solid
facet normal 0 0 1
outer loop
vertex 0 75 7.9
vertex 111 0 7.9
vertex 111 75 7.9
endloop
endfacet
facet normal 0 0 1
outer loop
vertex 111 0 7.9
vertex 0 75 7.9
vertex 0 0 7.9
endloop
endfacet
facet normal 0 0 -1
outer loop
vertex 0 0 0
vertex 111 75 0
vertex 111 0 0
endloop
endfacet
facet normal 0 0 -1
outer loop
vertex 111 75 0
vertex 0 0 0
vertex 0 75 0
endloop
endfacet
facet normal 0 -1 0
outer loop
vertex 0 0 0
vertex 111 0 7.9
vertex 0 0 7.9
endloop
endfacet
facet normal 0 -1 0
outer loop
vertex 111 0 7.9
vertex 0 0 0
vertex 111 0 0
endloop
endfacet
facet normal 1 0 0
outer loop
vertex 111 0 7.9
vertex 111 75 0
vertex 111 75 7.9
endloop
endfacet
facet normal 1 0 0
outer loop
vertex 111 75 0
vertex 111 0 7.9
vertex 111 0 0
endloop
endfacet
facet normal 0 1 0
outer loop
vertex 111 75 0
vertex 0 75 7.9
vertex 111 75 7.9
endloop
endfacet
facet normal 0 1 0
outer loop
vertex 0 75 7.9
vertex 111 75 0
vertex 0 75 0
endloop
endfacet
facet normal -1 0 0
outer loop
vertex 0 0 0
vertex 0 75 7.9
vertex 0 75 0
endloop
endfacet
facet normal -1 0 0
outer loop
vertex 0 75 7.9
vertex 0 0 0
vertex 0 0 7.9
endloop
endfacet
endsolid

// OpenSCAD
// Opentrons 96 Flat Bottom Heater-Shaker Adapter
// loadName: opentrons_96_flat_bottom_adapter
// Auto-generated by labware_to_stl.py from Opentrons V2 labware definition

$fn = 32;

difference() {
    // ── Labware body ──────────────────────────────────────────────
    cube([111.0000, 75.0000, 7.9000]);

    // ── Well cutouts ──────────────────────────────────────────────
}
